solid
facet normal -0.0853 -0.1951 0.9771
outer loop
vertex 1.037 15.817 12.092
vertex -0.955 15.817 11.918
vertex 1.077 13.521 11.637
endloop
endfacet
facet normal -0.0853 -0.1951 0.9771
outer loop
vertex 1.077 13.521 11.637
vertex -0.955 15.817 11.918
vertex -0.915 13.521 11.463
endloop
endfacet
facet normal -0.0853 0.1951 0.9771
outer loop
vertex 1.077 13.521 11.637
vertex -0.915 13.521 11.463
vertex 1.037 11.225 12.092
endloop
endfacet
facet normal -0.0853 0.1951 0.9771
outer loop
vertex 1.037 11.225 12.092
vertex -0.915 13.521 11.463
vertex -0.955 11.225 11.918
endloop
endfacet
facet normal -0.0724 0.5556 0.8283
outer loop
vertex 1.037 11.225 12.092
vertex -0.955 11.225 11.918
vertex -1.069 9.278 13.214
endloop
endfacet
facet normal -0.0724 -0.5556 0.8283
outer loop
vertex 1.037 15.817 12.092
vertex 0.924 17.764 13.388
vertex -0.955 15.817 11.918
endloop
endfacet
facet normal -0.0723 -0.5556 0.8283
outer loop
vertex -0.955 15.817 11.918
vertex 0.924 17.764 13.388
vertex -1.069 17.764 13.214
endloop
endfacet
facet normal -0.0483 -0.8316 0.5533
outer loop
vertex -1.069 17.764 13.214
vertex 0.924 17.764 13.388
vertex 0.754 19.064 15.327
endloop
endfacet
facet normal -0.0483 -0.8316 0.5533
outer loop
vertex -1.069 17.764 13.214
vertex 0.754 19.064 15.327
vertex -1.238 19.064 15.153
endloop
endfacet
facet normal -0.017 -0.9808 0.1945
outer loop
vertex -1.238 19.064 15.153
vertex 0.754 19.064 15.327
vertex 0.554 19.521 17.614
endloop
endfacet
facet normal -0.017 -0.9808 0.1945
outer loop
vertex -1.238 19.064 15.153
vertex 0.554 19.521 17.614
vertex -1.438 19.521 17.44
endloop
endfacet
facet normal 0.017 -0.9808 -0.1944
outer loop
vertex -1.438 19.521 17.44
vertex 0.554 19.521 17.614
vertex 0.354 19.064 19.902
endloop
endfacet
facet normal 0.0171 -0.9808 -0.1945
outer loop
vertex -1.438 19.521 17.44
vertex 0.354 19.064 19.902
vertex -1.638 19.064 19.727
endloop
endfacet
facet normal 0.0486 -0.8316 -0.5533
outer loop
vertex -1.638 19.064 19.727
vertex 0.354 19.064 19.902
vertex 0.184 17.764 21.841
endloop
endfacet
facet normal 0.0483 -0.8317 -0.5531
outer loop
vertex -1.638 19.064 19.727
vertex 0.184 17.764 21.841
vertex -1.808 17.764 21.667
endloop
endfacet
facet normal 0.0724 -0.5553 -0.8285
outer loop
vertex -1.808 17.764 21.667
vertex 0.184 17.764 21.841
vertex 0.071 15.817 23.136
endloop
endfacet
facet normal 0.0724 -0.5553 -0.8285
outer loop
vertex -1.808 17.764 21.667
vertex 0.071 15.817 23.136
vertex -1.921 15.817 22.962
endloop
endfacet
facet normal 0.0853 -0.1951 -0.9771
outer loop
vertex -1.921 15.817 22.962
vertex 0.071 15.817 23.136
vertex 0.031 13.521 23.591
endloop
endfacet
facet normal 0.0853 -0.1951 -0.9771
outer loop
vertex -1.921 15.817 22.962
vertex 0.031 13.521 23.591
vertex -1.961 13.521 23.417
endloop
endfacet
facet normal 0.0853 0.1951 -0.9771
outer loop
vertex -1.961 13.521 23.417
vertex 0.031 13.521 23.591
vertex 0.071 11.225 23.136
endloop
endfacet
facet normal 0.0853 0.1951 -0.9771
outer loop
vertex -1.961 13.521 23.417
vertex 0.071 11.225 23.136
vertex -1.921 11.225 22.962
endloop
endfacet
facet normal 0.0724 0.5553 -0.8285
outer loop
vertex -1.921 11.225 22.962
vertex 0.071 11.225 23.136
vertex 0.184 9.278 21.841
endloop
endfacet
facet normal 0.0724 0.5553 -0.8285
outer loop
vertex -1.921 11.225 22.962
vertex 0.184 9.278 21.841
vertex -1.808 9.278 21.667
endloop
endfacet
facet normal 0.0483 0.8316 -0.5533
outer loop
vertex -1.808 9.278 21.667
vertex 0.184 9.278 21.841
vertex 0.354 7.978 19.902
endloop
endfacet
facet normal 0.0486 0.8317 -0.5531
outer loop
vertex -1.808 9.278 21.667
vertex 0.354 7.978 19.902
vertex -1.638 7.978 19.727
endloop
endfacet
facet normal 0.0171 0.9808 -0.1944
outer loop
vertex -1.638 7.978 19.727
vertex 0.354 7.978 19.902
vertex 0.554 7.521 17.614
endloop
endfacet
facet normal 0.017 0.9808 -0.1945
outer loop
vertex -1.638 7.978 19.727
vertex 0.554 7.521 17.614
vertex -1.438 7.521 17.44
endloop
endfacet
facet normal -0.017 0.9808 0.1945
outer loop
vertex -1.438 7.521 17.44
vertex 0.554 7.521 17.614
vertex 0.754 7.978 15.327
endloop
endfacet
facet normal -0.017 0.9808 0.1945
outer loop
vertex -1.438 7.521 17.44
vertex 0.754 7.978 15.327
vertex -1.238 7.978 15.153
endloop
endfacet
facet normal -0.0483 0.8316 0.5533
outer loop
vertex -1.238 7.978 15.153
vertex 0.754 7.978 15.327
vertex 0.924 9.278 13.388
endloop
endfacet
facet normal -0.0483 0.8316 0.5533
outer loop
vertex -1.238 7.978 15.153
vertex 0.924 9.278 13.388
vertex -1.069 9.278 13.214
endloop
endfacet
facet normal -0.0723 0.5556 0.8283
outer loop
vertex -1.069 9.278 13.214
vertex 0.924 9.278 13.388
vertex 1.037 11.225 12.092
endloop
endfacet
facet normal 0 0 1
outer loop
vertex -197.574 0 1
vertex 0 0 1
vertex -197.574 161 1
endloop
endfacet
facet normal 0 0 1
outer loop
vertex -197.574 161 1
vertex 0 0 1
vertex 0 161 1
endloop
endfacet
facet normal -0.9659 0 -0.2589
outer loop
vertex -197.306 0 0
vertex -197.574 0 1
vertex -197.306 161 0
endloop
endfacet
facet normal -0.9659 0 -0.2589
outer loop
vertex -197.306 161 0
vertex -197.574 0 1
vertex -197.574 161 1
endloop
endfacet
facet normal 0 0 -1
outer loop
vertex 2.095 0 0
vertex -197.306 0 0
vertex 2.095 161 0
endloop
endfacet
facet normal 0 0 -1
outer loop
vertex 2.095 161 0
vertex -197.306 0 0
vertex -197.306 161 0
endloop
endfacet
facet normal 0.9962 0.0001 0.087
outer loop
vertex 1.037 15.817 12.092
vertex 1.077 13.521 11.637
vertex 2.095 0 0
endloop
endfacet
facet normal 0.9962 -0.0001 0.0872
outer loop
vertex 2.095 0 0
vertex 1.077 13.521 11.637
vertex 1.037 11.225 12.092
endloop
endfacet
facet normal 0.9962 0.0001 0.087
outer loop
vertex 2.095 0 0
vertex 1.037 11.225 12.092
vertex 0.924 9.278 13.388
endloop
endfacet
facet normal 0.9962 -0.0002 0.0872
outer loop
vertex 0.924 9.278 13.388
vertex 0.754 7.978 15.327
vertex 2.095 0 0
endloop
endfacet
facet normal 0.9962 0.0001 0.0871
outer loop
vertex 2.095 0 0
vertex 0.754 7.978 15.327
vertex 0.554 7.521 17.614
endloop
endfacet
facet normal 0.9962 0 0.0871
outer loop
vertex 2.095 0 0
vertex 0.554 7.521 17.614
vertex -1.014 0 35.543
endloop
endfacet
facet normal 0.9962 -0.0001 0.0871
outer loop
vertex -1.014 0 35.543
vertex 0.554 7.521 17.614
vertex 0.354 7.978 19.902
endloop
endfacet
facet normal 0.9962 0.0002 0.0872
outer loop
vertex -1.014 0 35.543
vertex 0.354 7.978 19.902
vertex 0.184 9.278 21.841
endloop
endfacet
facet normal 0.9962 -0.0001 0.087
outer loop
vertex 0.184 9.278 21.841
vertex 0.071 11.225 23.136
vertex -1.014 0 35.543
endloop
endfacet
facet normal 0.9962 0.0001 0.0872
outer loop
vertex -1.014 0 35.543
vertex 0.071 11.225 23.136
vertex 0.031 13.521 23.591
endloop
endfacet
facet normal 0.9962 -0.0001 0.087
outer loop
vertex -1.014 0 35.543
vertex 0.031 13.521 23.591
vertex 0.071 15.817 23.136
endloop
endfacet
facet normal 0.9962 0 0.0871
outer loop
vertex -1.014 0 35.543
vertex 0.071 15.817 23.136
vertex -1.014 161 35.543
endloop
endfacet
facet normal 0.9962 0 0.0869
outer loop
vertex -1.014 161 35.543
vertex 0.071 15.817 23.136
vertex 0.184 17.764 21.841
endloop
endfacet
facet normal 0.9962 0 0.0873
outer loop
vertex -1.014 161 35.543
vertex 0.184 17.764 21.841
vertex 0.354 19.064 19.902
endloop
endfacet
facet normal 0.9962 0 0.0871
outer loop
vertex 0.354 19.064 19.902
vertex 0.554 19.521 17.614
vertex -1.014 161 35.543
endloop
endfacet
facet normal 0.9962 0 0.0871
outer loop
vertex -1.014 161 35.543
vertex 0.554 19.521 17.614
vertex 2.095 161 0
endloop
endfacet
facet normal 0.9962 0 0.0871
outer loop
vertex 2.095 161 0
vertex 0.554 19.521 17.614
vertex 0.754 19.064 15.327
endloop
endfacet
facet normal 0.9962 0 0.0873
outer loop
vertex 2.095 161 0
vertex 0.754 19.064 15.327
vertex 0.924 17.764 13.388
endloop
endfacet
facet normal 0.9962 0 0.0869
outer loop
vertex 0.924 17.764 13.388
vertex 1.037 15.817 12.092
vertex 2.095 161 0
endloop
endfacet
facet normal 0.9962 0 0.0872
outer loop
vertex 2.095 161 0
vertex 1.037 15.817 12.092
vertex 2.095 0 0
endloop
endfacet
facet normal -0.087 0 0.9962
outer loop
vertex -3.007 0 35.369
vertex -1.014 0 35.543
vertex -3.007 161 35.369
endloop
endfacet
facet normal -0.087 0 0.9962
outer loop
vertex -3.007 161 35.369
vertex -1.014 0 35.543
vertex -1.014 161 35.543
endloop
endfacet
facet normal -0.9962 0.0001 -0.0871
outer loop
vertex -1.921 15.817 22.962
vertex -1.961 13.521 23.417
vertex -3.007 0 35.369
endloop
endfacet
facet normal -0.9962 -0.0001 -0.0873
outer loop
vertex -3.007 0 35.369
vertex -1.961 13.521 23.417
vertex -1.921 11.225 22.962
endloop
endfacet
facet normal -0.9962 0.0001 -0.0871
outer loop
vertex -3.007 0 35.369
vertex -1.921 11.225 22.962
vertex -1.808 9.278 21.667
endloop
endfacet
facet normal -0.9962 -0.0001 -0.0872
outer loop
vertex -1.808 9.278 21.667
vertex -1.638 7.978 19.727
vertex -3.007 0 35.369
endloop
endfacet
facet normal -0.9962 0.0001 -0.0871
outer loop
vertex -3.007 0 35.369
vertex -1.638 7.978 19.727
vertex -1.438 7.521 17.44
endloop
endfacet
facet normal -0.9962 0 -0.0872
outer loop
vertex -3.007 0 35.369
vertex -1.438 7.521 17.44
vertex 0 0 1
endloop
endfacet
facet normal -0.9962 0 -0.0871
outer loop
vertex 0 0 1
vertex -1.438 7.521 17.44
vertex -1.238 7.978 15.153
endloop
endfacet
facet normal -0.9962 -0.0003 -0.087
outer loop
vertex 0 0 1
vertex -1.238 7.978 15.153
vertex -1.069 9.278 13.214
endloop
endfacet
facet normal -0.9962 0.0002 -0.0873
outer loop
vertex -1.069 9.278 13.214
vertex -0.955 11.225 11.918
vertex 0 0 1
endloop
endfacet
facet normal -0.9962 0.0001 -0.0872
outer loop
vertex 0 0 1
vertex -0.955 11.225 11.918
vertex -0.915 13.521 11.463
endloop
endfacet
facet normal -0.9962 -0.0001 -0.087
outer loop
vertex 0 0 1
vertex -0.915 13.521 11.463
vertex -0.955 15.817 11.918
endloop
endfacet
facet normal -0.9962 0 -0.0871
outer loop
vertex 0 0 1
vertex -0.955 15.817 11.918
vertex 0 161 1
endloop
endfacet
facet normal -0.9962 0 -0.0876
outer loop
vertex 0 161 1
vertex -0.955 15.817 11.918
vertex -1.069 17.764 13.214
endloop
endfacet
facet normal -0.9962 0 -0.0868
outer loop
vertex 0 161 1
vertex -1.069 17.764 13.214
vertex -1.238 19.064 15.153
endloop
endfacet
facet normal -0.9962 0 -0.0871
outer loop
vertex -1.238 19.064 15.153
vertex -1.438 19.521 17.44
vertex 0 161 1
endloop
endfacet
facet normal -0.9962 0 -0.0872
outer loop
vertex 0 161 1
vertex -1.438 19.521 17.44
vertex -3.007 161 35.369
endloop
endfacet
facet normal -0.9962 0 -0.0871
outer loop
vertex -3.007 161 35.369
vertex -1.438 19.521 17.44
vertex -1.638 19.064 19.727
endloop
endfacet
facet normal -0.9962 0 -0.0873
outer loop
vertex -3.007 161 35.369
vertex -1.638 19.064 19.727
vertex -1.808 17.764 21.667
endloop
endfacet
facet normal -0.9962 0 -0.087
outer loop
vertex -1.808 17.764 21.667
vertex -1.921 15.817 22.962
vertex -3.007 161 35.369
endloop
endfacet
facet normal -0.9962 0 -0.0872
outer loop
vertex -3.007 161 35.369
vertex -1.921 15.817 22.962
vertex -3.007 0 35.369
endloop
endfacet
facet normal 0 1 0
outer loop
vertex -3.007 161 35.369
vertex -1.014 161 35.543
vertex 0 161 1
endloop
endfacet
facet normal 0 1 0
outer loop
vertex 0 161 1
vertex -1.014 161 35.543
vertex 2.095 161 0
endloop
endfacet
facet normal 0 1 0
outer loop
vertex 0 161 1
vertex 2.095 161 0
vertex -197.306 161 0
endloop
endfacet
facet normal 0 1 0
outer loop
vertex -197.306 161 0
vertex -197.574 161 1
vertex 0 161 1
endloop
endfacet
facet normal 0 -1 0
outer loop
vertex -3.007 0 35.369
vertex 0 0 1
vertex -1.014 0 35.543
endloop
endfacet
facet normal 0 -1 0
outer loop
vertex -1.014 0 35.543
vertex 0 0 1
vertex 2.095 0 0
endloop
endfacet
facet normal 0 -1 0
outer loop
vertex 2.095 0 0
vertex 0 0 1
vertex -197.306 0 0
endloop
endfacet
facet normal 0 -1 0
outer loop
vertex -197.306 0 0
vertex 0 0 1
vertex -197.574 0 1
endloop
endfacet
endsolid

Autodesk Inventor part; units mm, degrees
ref_plane "YZ Plane" through (0, 0, 0) normal (1, 0, 0) x (0, 1, 0)
ref_plane "XZ Plane" through (0, 0, 0) normal (0, 1, 0) x (-1, 0, 0)
ref_plane "XY Plane" through (0, 0, 0) normal (0, 0, 1) x (1, 0, 0)
sketch "Sketch1" plane through (0, 0, 0) normal (0, 1, 0) x (-1, 0, 0)
  line L0 (0, 0) -> (5, 0)
  line L1 (5, 161) -> (0, 161)
  line L2 (0, 0) -> (197.574, 0)
  line L3 (197.574, 0) -> (197.574, 1)
  line L4 (197.574, 1) -> (0, 1)
  line L5 (0, 1) -> (0, 0)
  line L6 (0, 1) -> (3.0069, 35.3687)
  line L7 (0, 1) -> (34.5, 1) construction
  line L8 (3.0069, 35.3687) -> (1.0145, 35.543)
  line L9 (1.0145, 35.543) -> (-2.0951, 0)
  line L10 (-2.0951, 0) -> (0, 0)
  line L11 (197.574, 1) -> (197.3061, 0)
  line L12 (197.574, 1) -> (198.6093, 1) construction
  line L13 (3.0069, 35.3687) -> (0.9992, 35.3687)
  dimension "d1" = 5
  dimension "d2" = 197.574
  dimension "d3" = 1
  dimension "d4" = 34.5
  dimension "d5" = 85
  dimension "d6" = 2
  dimension "d11" = 105
extrude "Extrusion1" add sketch "Sketch1" along normal blind 161 contours L5 L4 L11 L2 L0 | L10 L9 L13 L6 L5 | L13 L9 L8
sketch "Sketch3" plane through (-3.0069, 0, 35.3687) normal (-0.9962, 0, -0.0872) x (-0.0872, 0, 0.9962)
  circle A0 centre (-17.9972, 13.5211) radius 6
  line L0 (-19.9848, 8.9507) -> (-15.1606, 8.9507)
  line L1 (-15.1606, 8.9507) -> (-15.1606, -1.5715)
  line L2 (-15.1606, -1.5715) -> (-19.9848, -1.5715)
  line L3 (-19.9848, -1.5715) -> (-19.9848, 8.9507)
  point P0 (-35.4962, 0)
  point P1 (-15.1606, 8.234)
  point P2 (-19.9848, 7.8599)
  dimension "d12" = 12
extrude "Extrusion3" cut sketch "Sketch3" against normal blind 58.2625 contours A0 L1 L0 L3 | L3 L0 L1 A0
properties part number "bottomCover"
